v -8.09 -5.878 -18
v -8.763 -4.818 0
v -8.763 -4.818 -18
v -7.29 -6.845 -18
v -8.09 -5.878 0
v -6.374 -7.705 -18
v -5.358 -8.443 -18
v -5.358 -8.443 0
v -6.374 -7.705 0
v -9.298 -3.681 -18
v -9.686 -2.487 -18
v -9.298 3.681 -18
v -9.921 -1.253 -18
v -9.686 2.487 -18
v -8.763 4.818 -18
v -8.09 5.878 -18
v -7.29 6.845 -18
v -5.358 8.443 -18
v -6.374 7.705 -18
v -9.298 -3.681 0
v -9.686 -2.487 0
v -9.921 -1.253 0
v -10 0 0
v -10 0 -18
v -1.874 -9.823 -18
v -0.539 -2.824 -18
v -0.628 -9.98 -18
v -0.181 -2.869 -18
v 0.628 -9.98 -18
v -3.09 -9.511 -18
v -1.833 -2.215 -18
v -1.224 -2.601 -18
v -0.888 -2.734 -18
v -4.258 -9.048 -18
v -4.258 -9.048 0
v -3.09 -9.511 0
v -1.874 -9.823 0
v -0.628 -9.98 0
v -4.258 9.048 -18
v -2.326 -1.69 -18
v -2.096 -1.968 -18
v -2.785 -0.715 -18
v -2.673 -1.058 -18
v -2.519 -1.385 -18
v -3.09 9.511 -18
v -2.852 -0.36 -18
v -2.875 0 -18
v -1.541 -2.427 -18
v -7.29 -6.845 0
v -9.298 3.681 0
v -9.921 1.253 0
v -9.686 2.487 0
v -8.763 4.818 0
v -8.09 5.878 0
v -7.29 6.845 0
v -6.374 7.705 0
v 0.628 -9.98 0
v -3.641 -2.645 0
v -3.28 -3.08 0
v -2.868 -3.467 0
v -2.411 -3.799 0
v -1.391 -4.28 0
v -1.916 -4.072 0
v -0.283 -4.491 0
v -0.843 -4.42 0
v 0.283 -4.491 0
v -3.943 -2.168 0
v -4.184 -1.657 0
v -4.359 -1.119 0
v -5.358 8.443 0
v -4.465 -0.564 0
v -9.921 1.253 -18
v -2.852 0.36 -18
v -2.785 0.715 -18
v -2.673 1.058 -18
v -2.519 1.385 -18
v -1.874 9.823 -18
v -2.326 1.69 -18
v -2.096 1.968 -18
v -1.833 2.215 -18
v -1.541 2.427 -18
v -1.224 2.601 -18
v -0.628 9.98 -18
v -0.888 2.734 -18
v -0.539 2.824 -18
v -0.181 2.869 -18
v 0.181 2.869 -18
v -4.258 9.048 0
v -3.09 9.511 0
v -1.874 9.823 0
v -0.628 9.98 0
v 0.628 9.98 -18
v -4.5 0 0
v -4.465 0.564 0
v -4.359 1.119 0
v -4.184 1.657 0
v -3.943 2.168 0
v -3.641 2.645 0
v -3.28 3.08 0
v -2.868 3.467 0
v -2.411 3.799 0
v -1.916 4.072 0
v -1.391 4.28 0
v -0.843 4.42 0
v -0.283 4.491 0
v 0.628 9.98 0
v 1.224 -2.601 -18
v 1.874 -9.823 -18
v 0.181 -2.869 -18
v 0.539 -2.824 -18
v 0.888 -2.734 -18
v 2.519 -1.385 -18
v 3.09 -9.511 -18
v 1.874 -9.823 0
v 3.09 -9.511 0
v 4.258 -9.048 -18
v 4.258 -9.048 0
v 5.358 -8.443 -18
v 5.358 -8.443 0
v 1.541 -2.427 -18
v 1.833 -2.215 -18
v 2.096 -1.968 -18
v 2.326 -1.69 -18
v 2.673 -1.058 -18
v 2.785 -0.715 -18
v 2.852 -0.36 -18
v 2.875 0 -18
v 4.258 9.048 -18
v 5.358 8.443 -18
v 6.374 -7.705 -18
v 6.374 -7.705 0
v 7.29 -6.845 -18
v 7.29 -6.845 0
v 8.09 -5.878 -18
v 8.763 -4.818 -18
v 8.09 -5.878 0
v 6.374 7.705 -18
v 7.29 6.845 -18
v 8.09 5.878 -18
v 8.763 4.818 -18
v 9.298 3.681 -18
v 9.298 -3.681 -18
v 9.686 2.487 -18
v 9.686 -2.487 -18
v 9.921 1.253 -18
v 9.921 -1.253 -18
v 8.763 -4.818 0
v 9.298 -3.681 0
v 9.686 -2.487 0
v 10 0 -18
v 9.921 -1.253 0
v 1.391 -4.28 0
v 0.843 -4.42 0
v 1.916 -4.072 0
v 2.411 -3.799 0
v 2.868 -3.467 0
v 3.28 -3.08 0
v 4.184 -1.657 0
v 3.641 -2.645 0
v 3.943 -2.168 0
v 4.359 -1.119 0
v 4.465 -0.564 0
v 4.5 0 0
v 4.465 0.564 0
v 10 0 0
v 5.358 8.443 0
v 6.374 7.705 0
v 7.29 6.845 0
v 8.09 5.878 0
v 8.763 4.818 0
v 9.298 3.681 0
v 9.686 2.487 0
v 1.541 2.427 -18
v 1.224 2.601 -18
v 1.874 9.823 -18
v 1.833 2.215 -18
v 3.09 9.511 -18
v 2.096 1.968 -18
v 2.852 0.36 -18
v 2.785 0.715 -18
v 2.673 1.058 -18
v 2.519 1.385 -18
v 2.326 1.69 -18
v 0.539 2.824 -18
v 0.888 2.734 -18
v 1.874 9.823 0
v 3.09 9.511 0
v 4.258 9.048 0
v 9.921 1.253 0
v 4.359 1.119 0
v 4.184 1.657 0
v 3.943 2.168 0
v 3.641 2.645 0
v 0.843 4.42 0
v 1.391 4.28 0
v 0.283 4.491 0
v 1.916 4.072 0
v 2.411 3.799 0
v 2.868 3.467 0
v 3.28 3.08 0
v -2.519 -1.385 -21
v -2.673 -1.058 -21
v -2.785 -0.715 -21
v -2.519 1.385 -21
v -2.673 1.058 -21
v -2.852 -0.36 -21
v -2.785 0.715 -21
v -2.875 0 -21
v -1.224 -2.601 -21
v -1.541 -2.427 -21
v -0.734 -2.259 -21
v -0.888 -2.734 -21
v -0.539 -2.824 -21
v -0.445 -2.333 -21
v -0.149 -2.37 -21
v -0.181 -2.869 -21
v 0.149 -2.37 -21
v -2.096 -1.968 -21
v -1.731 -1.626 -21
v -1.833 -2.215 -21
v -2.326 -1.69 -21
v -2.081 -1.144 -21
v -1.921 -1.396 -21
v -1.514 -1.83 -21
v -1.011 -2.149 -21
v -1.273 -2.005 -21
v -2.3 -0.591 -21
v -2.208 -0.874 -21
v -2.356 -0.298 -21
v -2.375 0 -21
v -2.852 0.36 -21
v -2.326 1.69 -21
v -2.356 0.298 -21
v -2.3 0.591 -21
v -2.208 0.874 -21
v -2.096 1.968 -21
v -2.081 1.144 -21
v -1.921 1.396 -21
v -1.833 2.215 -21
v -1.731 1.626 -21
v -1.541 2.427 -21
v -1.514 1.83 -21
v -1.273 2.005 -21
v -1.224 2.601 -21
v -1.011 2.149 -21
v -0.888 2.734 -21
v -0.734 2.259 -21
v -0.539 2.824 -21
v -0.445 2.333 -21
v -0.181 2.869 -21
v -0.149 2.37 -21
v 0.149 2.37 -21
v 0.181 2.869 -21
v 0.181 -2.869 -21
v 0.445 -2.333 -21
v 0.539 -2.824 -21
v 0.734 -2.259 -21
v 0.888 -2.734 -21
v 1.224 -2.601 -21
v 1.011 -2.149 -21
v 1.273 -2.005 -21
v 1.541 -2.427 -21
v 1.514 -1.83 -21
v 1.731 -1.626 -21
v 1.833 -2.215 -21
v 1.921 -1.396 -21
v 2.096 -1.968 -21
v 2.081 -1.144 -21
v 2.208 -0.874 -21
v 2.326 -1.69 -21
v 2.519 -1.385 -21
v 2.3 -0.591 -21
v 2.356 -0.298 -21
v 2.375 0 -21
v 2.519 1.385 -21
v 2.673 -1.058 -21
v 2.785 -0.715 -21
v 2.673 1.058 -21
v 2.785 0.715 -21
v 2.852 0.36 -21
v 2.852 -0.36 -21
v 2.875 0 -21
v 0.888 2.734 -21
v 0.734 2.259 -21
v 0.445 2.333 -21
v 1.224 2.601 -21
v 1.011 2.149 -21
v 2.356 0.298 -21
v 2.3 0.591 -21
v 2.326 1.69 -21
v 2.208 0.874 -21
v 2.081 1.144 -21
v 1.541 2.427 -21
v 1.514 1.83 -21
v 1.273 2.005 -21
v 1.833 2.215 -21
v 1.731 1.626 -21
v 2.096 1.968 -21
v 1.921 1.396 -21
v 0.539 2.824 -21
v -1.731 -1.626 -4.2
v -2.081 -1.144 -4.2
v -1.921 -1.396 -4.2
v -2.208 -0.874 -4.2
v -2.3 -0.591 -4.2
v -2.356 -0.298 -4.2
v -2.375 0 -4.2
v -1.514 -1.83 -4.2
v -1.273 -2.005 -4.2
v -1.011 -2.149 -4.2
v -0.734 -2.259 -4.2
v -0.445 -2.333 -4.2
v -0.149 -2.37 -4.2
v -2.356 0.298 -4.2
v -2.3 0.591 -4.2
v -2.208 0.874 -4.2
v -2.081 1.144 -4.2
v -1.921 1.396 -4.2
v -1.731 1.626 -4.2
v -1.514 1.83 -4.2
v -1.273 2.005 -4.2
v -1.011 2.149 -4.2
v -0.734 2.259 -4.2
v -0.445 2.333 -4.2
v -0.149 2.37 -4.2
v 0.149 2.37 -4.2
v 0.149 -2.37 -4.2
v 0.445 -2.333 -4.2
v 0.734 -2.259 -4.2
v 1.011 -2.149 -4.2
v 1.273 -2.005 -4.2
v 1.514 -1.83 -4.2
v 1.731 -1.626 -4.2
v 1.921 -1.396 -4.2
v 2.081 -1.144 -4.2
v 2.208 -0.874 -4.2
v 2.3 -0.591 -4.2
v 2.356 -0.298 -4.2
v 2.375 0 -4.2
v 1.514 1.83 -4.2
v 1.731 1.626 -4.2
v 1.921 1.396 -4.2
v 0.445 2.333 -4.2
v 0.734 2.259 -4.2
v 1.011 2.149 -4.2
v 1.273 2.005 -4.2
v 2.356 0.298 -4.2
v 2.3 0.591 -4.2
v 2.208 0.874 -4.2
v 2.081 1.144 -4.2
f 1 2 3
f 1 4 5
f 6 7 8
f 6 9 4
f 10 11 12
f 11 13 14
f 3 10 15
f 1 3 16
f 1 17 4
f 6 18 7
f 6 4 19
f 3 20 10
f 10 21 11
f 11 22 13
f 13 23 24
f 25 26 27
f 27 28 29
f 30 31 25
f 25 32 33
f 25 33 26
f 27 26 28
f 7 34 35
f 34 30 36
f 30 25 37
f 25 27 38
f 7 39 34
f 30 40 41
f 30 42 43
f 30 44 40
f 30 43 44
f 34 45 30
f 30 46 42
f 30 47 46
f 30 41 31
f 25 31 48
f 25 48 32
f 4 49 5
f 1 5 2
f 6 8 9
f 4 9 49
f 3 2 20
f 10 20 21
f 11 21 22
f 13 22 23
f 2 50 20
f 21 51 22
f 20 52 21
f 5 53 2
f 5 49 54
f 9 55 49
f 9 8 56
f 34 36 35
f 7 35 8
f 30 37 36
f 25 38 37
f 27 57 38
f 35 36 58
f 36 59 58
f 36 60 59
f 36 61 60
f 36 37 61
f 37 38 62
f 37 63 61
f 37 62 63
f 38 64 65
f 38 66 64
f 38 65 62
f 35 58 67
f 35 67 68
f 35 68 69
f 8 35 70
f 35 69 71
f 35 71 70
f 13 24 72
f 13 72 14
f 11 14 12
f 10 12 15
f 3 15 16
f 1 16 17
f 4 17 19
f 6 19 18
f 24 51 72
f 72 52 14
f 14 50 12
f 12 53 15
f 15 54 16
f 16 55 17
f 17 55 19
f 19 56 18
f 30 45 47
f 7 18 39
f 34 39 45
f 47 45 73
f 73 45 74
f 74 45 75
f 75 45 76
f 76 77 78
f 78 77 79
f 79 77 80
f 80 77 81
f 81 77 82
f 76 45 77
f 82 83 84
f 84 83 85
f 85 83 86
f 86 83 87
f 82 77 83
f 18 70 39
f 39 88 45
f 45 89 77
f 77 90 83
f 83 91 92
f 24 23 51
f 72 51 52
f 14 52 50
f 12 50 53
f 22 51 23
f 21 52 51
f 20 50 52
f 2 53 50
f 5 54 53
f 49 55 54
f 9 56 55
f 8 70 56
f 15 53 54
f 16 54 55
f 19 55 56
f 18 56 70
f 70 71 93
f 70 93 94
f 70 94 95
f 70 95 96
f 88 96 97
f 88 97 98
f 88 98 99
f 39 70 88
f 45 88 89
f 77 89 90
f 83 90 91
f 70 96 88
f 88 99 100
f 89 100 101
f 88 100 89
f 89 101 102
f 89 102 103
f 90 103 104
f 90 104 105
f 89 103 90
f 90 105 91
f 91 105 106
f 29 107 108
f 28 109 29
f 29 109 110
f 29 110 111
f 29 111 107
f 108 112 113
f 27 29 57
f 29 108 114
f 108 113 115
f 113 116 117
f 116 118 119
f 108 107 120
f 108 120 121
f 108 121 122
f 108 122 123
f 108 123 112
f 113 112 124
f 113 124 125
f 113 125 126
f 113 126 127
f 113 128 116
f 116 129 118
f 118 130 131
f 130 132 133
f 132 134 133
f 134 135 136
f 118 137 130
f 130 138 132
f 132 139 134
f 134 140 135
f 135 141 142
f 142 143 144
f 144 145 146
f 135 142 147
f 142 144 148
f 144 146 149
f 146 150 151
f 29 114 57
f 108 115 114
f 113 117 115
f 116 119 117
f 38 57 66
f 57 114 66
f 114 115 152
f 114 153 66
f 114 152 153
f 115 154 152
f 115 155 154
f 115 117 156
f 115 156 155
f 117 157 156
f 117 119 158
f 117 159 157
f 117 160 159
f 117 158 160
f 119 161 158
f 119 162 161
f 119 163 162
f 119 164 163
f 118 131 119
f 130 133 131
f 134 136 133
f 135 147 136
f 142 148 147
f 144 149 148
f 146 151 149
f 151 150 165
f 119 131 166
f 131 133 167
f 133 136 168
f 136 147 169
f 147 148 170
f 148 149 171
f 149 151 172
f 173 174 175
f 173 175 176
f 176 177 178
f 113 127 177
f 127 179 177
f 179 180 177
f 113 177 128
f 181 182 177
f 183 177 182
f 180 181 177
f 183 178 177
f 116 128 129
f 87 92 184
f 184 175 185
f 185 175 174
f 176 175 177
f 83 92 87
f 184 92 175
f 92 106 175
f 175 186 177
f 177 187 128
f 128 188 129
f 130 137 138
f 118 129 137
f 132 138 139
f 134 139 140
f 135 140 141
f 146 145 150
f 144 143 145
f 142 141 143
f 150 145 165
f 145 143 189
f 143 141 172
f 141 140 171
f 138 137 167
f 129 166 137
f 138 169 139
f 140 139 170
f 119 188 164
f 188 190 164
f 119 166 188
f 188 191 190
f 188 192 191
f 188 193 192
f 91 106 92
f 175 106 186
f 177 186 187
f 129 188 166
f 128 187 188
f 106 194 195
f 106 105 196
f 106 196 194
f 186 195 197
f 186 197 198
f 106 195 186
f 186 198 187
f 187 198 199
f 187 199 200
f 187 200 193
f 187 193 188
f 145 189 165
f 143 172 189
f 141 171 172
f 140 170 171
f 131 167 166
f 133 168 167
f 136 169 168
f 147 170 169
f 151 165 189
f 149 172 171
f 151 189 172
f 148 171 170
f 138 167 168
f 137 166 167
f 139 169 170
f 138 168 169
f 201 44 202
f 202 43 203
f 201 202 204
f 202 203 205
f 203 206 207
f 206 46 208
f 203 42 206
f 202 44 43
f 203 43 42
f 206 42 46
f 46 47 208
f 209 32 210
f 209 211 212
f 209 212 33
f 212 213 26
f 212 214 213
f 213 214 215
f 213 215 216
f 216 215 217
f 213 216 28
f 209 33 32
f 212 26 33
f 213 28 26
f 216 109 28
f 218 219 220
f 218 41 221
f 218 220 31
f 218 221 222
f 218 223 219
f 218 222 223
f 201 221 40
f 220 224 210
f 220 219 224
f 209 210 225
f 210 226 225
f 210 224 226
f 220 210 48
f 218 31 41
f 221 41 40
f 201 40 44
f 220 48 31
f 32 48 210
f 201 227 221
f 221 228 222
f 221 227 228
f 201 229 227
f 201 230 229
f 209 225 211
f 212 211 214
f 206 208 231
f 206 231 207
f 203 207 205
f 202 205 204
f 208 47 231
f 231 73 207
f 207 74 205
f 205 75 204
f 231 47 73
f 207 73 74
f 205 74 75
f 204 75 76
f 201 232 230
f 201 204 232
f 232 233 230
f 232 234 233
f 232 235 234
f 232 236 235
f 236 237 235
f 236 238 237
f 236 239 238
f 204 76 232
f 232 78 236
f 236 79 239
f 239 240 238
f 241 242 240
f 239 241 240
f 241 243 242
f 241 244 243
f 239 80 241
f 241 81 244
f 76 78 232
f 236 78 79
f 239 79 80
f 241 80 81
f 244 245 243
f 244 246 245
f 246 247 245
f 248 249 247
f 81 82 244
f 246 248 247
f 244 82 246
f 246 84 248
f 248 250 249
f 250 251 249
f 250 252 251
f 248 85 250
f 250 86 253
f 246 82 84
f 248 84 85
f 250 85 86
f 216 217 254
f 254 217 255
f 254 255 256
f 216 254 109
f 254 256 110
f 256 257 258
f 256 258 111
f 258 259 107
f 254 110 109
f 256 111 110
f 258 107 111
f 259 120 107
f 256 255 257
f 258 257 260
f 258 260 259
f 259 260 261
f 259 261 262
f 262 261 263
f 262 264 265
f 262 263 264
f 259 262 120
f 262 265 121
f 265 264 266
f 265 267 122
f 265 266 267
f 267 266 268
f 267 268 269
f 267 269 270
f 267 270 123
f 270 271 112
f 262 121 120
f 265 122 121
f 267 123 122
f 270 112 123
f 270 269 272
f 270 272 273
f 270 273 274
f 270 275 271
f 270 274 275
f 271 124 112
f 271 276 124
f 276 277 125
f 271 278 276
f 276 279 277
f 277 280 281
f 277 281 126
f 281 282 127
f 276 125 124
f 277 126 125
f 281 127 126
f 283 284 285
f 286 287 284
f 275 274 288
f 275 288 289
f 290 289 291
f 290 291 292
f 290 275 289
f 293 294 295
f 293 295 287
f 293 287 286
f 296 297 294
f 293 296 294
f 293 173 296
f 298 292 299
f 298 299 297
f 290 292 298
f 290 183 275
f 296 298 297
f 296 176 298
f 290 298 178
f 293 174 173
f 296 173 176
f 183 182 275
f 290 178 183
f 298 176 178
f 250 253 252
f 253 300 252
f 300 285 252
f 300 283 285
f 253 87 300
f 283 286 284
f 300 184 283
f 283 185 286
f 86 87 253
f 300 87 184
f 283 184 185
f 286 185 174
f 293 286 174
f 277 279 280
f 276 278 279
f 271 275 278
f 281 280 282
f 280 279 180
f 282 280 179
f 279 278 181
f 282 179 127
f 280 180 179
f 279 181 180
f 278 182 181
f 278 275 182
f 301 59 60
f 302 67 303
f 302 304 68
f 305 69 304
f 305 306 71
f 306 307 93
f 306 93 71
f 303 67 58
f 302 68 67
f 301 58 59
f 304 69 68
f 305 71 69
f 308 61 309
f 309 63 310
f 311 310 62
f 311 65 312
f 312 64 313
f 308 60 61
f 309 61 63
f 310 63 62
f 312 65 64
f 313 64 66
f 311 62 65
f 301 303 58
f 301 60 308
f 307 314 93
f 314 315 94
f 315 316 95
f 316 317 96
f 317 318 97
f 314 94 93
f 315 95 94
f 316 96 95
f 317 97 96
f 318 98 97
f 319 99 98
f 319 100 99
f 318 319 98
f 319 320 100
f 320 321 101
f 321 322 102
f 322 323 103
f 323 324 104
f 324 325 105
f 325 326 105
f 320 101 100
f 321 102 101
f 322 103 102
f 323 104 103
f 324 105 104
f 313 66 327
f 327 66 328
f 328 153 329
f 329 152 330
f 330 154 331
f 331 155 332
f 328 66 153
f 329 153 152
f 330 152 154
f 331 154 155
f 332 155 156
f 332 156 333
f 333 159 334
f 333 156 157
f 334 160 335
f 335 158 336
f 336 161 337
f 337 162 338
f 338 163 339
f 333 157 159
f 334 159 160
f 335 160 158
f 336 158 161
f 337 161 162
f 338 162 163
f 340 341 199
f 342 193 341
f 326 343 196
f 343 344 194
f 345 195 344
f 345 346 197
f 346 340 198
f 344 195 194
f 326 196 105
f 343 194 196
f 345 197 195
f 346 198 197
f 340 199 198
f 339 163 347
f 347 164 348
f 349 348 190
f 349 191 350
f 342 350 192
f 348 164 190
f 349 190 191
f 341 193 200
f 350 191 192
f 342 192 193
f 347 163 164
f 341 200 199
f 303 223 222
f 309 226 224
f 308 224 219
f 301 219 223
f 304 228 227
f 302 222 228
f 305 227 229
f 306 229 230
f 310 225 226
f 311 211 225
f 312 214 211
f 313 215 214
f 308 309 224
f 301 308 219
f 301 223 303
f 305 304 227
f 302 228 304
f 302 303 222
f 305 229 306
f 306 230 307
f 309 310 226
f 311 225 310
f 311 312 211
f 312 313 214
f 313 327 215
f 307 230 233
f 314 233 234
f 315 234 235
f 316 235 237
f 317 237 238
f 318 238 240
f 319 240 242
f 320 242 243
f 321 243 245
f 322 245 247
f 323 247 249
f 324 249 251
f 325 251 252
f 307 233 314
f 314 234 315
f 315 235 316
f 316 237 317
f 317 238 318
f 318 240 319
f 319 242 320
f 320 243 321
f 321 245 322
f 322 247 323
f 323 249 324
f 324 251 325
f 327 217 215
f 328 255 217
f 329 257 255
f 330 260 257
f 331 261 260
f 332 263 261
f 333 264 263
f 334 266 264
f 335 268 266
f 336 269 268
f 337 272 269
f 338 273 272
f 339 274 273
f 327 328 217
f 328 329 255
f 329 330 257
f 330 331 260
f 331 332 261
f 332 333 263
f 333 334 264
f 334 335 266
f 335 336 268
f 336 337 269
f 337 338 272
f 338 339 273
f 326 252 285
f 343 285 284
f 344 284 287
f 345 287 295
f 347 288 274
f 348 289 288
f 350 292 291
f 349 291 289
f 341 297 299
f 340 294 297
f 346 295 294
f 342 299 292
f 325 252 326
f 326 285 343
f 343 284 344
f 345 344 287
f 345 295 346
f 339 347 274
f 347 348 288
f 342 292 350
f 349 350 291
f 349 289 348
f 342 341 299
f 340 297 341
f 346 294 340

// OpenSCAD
$fn = 50;

difference() {
	union() {
		translate(v = [0, 0, -18.0]) {
			cylinder(h = 18, r = 10.0);
		}
		#translate(v = [0, 0, -21.0]) {
			cylinder(h = 21, r = 2.875);
		}
	}
	union() {
		translate(v = [0, 0, 0]) {
			rotate(a = [0, 0, 0]) {
				difference() {
					union() {
						translate(v = [0, 0, -21.0]) {
							cylinder(h = 21, r = 2.25);
						}
						translate(v = [0, 0, -4.2]) {
							cylinder(h = 4.2, r1 = 2.375, r2 = 4.5);
						}
						translate(v = [0, 0, -21.0]) {
							cylinder(h = 21, r = 2.375);
						}
						translate(v = [0, 0, -21.0]) {
							cylinder(h = 21, r = 2.25);
						}
					}
					union();
				}
			}
		}
	}
}
